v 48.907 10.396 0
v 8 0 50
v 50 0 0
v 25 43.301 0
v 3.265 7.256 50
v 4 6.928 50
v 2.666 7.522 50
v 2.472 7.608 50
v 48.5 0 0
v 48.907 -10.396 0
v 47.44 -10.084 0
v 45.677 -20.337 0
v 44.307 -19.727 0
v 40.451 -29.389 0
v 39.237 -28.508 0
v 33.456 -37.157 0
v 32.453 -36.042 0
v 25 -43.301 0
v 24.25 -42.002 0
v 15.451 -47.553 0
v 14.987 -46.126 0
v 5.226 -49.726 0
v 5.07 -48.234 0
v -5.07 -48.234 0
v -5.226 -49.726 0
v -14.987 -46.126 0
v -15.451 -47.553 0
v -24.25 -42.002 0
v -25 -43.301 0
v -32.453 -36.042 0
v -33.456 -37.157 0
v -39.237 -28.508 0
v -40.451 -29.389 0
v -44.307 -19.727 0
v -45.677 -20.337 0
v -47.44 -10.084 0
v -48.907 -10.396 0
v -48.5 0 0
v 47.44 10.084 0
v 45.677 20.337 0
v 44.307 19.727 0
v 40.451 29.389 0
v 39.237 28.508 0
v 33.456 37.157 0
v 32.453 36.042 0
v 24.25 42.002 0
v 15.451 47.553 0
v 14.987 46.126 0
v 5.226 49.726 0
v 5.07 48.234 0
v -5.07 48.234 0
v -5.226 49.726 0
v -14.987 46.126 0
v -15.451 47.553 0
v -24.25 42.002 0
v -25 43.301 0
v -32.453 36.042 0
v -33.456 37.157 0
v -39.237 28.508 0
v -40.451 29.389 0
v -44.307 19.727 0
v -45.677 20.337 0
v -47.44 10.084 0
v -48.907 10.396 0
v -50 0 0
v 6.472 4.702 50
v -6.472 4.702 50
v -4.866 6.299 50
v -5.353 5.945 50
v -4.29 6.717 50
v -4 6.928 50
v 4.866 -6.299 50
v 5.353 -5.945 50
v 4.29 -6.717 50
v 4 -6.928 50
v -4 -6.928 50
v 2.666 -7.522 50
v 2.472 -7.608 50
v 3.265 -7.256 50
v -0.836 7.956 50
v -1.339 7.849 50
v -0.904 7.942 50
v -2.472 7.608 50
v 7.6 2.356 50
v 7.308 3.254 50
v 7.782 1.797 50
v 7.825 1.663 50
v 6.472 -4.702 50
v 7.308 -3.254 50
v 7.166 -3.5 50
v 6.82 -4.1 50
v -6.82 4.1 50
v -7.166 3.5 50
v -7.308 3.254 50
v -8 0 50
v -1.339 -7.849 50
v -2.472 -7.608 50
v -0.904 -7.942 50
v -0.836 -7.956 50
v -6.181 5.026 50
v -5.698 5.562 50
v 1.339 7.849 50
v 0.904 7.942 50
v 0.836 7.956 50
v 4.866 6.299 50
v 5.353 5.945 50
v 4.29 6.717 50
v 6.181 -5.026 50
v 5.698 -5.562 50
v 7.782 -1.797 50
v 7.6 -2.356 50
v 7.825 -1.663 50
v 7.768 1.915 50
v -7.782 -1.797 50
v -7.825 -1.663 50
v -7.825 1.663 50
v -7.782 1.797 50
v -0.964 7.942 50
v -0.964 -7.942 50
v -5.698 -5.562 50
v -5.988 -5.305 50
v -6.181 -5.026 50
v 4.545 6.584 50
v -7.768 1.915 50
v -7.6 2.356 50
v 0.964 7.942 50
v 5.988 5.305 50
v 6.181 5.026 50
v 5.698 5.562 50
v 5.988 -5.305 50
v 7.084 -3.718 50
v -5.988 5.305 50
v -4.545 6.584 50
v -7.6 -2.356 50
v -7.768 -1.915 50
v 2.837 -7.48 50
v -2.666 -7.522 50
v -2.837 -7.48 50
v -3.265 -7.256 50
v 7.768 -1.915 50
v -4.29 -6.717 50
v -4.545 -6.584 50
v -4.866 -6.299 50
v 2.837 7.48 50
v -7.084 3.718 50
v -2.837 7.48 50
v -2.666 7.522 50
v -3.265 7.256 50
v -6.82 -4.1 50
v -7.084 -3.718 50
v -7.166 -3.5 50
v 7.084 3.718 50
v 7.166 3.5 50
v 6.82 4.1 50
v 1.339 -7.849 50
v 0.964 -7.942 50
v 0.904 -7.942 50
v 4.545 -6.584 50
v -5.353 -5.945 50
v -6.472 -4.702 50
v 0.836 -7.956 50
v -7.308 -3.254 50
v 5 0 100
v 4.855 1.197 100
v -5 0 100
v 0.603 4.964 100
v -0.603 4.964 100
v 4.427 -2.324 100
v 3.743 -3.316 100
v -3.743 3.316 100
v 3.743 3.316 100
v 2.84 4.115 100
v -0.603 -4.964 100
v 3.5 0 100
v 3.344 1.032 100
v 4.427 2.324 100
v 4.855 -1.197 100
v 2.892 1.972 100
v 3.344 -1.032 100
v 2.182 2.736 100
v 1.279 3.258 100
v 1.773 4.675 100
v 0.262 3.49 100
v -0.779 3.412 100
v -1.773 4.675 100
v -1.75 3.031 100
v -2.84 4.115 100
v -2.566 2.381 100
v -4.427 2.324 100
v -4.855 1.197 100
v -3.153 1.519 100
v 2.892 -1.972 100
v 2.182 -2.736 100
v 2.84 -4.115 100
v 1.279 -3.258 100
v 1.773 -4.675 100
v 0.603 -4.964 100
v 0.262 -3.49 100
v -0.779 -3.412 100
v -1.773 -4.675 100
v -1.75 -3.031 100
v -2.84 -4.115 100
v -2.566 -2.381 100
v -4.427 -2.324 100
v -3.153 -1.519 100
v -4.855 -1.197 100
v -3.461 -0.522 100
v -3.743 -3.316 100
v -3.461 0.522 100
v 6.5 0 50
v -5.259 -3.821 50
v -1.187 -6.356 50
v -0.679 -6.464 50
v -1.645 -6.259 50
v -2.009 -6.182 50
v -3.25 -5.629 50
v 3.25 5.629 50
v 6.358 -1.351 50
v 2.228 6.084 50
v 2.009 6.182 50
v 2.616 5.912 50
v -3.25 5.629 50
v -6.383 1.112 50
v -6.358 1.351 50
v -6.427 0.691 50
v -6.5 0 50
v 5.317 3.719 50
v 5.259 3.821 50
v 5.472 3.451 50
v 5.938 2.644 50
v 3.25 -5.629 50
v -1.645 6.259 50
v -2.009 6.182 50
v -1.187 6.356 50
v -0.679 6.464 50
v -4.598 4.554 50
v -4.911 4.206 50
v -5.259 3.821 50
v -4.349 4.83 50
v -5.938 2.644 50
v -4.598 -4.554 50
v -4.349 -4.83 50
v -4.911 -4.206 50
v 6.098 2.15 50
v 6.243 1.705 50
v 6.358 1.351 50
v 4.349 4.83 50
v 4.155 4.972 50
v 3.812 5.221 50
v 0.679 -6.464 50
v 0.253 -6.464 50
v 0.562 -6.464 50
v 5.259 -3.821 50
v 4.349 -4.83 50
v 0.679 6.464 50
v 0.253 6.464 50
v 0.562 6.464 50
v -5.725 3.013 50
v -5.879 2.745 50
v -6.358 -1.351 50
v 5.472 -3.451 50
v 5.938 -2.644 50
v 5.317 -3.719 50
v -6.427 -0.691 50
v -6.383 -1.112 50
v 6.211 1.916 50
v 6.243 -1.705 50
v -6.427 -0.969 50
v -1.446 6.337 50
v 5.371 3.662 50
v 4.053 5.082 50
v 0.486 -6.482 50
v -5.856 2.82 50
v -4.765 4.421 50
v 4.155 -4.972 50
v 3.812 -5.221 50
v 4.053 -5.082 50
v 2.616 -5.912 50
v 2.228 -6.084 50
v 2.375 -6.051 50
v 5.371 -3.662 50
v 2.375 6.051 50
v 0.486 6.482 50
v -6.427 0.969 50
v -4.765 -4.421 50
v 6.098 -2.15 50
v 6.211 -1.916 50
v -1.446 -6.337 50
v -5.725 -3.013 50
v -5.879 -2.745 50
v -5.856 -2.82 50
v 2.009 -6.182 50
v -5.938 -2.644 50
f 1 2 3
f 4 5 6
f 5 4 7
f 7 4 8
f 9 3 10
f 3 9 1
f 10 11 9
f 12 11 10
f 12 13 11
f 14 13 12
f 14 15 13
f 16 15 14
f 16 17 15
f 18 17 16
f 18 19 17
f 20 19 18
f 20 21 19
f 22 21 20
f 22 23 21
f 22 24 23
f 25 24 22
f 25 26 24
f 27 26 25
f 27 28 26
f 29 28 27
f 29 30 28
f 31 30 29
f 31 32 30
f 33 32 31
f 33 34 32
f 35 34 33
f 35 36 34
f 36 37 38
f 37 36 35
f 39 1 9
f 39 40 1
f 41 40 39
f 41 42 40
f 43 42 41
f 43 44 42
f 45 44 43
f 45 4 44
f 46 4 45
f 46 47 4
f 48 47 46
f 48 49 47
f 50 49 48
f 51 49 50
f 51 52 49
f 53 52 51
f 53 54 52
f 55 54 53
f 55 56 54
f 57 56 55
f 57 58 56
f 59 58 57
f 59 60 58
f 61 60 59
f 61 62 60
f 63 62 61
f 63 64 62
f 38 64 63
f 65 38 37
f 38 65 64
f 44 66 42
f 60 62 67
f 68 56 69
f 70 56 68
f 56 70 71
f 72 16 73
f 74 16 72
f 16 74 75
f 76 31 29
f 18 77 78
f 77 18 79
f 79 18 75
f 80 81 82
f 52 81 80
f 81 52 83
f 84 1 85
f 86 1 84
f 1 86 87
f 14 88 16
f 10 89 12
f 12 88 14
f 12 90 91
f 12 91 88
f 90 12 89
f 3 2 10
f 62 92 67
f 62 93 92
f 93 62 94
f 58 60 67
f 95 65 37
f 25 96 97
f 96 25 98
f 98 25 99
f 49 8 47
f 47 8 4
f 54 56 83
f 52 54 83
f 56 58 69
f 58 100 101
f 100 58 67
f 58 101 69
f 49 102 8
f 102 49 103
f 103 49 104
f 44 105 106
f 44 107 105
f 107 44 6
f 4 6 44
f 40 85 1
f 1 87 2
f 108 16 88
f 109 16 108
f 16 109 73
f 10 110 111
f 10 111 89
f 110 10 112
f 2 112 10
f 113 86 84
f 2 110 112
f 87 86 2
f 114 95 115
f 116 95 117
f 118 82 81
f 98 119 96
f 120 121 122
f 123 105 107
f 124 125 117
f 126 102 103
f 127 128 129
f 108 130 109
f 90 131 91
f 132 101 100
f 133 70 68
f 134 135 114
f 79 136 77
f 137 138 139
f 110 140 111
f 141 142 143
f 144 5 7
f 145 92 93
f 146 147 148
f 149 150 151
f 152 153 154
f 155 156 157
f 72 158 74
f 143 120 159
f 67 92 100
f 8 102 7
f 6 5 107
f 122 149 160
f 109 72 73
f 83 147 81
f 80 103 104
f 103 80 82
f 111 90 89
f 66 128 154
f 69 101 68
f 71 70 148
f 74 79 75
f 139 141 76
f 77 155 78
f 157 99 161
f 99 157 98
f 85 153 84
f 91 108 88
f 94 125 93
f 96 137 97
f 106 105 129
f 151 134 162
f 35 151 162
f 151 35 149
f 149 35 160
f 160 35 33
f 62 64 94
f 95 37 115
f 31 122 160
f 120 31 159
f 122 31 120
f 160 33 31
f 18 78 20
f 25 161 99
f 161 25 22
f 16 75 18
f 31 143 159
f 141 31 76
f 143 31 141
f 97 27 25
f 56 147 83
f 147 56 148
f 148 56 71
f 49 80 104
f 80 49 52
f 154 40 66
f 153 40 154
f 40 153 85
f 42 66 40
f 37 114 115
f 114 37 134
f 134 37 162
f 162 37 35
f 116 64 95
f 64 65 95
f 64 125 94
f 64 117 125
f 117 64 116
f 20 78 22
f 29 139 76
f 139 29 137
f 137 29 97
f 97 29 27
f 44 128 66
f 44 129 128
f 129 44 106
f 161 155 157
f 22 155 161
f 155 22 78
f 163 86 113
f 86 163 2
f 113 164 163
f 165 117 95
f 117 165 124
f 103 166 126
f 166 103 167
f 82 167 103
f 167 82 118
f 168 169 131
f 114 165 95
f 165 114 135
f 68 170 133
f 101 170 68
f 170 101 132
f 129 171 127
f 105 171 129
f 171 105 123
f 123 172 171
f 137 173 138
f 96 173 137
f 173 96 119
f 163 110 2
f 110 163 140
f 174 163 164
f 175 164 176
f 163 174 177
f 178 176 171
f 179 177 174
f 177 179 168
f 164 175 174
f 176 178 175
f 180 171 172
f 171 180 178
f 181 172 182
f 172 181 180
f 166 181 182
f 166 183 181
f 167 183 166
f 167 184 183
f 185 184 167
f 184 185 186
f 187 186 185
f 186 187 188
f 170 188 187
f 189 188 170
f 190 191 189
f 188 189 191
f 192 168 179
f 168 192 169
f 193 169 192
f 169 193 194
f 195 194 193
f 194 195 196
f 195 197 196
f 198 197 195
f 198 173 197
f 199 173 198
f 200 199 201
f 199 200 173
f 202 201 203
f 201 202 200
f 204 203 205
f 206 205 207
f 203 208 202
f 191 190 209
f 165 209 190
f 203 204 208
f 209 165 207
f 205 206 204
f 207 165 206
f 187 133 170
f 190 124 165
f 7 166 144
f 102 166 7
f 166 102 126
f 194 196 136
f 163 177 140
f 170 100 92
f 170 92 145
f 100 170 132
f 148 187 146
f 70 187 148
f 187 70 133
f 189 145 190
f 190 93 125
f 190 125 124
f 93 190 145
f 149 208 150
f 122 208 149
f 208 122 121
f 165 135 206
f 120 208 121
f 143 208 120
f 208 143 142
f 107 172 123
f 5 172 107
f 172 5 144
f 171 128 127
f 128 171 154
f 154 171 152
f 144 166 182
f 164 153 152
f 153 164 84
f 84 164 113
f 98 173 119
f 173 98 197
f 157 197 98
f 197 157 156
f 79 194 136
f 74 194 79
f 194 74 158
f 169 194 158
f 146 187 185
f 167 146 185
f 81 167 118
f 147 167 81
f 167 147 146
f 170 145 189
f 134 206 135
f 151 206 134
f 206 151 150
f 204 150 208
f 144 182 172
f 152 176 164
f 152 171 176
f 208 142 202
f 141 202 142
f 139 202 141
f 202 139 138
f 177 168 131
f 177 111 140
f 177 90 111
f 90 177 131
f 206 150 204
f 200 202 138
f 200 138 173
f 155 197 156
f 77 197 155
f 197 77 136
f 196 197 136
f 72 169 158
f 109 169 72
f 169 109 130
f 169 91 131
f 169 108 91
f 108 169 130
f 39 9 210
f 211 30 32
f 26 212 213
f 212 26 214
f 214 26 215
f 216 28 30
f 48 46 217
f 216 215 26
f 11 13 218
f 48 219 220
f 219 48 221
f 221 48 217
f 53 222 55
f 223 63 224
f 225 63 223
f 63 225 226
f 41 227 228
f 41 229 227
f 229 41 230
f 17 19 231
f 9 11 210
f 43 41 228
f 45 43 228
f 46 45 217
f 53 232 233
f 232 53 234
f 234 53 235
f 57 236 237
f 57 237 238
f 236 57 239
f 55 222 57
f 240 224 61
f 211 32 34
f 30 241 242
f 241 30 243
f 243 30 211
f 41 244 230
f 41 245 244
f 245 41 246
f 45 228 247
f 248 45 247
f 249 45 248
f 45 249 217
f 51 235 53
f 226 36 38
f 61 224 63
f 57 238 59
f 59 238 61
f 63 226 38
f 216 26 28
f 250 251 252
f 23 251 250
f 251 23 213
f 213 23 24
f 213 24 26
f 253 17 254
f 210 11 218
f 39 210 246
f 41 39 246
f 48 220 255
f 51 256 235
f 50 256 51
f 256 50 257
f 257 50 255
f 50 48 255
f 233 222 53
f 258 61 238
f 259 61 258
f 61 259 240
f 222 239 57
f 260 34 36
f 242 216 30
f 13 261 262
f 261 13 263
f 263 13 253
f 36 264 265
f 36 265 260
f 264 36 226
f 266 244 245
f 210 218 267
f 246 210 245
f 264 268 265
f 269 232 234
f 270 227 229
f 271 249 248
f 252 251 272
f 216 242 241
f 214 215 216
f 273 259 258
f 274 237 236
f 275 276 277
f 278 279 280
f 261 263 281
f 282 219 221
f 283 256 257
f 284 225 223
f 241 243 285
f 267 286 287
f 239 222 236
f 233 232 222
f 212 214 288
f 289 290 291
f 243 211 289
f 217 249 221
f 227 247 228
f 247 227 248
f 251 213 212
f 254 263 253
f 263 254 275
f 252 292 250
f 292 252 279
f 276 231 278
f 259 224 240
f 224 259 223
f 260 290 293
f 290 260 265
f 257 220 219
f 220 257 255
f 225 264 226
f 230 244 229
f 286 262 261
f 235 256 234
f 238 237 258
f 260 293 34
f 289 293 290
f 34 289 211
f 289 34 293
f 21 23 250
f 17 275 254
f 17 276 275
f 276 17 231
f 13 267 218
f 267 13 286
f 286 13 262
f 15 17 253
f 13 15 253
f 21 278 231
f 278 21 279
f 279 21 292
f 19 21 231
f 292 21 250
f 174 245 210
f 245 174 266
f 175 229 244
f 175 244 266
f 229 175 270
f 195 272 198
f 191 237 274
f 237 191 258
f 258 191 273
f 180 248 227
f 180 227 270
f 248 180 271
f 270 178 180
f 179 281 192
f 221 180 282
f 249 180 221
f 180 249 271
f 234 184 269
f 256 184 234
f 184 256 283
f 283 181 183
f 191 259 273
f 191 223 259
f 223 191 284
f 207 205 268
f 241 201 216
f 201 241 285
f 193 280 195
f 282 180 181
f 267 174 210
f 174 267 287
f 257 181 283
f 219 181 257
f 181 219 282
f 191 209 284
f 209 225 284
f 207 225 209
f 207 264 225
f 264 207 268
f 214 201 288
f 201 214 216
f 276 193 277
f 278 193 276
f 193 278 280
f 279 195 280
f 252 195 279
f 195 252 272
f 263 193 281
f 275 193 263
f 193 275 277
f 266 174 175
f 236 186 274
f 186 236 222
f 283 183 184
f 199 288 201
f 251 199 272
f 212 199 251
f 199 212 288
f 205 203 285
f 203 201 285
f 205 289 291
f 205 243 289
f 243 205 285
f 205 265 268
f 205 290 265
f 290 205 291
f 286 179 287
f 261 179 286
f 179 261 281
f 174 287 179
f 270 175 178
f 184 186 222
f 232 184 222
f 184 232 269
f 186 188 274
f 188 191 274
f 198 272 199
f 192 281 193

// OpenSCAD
r1 = 50;
r2 = 8;
r3 = 5;

h1 = 50;
h2 = 50;
thickness = 1.5;

difference() {
    tornado(r1, r2, r3, h1, h2);
    tornado(r1 - thickness, r2 - thickness, r3 - thickness, h1, h2);
}

module tornado(r1, r2, r3, h1, h2) {
    cylinder(h = h1, r1 = r1, r2 = r2);
    translate([0, 0, h1]) cylinder(h = h2, r1 = r2, r2 = r3);
}
